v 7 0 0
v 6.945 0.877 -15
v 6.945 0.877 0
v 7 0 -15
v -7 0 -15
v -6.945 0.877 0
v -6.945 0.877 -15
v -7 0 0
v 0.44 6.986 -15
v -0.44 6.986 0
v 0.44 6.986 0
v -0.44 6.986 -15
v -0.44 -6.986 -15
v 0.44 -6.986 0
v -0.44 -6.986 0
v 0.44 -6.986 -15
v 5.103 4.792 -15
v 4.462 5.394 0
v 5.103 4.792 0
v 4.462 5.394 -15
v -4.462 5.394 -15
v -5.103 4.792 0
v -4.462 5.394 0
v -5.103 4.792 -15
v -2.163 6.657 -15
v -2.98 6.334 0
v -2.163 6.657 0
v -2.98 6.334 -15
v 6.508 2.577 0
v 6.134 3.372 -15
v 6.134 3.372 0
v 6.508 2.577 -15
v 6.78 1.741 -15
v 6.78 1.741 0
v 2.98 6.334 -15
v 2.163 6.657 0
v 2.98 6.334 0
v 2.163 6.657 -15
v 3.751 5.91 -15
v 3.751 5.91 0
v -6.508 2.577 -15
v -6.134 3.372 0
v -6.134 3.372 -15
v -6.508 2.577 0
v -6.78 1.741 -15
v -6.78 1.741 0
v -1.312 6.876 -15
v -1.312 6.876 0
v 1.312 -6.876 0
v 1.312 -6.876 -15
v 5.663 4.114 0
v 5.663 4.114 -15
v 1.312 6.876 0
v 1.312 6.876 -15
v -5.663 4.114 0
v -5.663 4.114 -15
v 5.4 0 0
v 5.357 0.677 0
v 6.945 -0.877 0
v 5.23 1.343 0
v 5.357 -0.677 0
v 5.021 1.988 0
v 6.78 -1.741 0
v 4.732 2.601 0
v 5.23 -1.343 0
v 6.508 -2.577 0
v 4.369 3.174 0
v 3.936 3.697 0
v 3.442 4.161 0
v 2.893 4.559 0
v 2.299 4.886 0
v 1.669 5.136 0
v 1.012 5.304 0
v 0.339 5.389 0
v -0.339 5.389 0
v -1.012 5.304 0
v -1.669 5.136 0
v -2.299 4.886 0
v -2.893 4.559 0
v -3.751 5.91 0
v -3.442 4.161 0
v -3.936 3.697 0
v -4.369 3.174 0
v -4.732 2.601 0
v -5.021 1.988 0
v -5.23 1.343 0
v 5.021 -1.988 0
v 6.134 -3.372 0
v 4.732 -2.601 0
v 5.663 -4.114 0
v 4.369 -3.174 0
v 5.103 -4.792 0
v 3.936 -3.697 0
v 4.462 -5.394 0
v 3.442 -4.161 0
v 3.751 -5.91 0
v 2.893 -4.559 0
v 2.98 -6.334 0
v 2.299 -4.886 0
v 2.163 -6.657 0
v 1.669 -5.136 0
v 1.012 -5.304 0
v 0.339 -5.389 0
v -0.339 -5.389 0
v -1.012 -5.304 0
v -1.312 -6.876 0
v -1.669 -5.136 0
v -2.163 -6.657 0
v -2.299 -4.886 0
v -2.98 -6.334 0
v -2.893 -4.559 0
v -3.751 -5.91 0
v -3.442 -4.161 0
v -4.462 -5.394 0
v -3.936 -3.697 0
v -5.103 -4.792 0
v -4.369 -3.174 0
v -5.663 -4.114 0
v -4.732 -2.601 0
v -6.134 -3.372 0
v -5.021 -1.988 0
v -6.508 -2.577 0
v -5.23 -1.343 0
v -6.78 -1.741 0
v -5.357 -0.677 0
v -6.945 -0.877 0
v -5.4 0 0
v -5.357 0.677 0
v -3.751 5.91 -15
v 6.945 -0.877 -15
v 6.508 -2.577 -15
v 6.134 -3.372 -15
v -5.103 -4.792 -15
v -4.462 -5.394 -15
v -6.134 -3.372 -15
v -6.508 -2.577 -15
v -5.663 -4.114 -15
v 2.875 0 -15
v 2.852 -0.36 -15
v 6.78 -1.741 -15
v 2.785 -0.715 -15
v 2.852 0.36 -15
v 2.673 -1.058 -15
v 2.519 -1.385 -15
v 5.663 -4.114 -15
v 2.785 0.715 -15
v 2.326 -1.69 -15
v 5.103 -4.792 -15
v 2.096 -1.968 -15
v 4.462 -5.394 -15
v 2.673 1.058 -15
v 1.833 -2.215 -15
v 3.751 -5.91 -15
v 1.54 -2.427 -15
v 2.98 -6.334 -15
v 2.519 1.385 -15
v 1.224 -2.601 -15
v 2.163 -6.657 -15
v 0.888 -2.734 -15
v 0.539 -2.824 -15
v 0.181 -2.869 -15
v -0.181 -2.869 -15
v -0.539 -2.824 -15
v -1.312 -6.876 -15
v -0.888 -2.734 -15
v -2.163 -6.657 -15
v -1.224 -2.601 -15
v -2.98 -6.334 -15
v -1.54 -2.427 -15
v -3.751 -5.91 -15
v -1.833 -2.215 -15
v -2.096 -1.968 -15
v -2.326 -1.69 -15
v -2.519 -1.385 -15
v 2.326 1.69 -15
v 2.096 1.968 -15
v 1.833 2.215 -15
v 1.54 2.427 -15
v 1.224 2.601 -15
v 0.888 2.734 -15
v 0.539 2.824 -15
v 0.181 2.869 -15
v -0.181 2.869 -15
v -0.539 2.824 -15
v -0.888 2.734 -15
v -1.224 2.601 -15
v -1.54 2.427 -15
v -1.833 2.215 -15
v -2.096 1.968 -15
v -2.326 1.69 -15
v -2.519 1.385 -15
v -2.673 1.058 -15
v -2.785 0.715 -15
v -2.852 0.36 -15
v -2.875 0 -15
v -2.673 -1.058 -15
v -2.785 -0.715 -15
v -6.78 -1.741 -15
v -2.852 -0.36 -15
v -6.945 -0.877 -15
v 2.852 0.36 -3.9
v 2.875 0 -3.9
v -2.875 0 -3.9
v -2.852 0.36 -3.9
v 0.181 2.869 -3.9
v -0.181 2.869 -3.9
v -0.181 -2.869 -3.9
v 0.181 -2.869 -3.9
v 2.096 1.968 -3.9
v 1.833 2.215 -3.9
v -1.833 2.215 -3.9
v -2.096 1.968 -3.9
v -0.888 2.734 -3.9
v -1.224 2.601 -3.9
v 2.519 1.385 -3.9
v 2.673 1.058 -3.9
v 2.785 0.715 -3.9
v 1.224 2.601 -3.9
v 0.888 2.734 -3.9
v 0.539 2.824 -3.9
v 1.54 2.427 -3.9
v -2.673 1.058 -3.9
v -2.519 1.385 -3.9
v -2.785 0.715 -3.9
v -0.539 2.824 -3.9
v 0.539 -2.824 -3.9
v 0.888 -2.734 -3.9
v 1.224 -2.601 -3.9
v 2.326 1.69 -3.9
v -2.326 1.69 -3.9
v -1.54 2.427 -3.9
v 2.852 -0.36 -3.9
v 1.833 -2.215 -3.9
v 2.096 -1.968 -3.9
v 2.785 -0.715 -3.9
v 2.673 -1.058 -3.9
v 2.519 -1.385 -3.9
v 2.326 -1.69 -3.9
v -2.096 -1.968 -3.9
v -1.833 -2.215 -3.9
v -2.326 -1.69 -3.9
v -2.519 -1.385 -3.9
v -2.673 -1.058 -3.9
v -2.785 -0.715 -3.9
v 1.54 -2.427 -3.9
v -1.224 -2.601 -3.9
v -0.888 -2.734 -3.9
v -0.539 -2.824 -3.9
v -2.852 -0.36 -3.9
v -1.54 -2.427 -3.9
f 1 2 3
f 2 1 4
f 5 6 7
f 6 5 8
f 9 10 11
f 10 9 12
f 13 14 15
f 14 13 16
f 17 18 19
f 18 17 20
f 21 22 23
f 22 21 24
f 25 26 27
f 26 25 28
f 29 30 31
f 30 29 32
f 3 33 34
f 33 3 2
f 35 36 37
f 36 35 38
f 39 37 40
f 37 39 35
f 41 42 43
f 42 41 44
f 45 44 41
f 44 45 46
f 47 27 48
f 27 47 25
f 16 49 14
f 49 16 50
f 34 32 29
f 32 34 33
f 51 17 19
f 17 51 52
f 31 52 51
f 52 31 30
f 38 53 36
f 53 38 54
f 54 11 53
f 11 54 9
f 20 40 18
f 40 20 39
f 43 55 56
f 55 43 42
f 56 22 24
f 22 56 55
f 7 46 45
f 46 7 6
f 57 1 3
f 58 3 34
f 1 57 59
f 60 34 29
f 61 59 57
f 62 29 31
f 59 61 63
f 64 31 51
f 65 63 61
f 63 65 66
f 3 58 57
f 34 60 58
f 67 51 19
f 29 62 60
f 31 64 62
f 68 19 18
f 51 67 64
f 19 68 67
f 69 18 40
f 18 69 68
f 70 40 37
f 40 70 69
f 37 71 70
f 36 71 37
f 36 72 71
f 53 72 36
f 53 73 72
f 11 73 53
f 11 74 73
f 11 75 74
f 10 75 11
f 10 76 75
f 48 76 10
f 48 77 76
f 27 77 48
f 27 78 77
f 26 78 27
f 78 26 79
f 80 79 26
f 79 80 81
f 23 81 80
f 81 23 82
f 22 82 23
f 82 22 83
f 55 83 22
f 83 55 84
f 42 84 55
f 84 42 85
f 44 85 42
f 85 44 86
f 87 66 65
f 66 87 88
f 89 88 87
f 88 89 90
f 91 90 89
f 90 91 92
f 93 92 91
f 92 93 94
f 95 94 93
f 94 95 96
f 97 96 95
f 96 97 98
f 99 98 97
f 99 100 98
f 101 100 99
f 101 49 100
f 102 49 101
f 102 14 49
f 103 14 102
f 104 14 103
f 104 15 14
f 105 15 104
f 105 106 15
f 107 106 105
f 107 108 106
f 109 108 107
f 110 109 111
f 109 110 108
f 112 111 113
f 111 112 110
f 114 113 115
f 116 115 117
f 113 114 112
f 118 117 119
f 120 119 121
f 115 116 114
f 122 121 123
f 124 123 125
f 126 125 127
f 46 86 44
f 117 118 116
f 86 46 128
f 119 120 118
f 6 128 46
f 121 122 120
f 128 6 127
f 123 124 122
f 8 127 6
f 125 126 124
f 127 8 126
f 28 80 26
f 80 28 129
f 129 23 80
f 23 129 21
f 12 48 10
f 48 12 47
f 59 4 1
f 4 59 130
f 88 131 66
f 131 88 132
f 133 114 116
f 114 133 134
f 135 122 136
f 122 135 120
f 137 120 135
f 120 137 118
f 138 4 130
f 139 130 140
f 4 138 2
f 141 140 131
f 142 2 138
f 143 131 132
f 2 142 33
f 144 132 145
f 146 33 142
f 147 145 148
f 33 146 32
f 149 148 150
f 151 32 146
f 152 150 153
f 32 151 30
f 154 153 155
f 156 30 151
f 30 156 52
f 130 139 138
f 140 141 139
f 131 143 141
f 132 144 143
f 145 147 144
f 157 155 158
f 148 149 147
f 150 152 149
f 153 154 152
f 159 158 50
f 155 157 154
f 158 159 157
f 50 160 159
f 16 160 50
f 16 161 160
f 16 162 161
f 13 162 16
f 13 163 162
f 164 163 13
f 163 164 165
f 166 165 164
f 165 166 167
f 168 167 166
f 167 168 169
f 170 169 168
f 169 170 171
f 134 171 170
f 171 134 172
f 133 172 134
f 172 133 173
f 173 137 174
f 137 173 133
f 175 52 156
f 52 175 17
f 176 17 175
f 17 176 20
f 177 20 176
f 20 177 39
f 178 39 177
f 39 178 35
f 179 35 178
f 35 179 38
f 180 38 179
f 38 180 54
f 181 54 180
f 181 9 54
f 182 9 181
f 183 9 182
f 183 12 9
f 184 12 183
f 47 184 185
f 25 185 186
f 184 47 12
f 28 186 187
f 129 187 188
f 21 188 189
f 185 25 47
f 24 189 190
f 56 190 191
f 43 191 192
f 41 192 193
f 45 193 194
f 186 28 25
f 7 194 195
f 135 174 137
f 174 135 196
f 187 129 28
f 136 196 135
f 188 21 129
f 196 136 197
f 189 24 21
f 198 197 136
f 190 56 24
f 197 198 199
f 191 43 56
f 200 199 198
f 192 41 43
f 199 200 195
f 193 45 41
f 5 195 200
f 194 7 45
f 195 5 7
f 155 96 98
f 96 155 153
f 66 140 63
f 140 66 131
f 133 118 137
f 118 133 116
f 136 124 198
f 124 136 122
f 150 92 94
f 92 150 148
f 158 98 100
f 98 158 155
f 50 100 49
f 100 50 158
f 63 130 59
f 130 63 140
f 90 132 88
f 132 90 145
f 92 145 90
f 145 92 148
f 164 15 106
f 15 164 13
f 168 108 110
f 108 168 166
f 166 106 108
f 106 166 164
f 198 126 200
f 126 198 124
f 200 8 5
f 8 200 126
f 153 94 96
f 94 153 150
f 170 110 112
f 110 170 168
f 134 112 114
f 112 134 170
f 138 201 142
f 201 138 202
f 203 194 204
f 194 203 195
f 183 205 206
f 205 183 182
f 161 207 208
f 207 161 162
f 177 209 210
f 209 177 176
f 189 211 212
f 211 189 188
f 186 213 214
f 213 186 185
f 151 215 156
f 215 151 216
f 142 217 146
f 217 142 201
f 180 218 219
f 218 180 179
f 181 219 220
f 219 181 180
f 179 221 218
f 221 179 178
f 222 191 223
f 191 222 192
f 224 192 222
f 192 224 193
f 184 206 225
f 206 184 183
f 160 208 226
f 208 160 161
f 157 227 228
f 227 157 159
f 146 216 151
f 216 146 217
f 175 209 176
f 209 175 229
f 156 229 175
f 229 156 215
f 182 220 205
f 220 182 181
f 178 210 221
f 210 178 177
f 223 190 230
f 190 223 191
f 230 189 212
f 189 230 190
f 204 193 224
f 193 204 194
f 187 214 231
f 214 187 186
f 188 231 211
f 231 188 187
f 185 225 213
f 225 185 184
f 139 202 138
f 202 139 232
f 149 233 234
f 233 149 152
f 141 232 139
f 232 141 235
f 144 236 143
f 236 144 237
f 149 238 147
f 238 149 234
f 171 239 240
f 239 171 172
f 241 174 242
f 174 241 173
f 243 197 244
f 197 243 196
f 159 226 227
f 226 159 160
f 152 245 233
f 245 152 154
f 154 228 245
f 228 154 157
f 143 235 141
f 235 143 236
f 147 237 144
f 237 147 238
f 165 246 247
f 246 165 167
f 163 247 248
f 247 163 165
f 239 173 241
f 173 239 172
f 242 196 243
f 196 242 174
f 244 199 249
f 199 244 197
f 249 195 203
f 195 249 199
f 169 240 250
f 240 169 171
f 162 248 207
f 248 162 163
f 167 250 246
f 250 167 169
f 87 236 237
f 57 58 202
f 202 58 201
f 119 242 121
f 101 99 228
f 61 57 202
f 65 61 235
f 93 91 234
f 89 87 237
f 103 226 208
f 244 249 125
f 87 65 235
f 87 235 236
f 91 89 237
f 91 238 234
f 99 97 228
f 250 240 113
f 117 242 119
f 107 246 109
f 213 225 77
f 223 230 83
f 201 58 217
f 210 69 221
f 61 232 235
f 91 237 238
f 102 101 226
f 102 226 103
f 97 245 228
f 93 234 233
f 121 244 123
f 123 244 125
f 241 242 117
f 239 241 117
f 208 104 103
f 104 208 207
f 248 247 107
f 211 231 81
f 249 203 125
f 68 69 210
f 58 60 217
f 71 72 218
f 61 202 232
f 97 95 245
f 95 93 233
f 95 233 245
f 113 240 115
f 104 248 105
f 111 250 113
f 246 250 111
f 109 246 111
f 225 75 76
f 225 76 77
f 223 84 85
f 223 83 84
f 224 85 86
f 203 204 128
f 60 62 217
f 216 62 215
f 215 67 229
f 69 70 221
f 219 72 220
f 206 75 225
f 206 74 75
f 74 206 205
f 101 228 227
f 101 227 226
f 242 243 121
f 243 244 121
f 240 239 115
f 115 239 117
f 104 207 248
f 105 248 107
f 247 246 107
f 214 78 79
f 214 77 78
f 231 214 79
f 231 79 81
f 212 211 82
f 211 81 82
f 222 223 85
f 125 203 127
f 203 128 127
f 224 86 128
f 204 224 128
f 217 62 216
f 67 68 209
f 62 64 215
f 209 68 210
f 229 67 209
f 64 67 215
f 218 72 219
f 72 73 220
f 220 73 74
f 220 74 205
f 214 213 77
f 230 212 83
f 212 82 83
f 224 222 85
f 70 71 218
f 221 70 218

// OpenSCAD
$fn = 50;

difference() {
	union() {
		translate(v = [0, 0, -15.0]) {
			cylinder(h = 15, r = 7.0);
		}
		#translate(v = [0, 0, -18.0]) {
			cylinder(h = 18, r = 2.875);
		}
	}
	union() {
		translate(v = [0, 0, 0]) {
			rotate(a = [0, 0, 0]) {
				difference() {
					union() {
						translate(v = [0, 0, -18.0]) {
							cylinder(h = 18, r = 2.6);
						}
						translate(v = [0, 0, -3.9]) {
							cylinder(h = 3.9, r1 = 2.875, r2 = 5.4);
						}
						translate(v = [0, 0, -18.0]) {
							cylinder(h = 18, r = 2.875);
						}
						translate(v = [0, 0, -18.0]) {
							cylinder(h = 18, r = 2.6);
						}
					}
					union();
				}
			}
		}
	}
}
